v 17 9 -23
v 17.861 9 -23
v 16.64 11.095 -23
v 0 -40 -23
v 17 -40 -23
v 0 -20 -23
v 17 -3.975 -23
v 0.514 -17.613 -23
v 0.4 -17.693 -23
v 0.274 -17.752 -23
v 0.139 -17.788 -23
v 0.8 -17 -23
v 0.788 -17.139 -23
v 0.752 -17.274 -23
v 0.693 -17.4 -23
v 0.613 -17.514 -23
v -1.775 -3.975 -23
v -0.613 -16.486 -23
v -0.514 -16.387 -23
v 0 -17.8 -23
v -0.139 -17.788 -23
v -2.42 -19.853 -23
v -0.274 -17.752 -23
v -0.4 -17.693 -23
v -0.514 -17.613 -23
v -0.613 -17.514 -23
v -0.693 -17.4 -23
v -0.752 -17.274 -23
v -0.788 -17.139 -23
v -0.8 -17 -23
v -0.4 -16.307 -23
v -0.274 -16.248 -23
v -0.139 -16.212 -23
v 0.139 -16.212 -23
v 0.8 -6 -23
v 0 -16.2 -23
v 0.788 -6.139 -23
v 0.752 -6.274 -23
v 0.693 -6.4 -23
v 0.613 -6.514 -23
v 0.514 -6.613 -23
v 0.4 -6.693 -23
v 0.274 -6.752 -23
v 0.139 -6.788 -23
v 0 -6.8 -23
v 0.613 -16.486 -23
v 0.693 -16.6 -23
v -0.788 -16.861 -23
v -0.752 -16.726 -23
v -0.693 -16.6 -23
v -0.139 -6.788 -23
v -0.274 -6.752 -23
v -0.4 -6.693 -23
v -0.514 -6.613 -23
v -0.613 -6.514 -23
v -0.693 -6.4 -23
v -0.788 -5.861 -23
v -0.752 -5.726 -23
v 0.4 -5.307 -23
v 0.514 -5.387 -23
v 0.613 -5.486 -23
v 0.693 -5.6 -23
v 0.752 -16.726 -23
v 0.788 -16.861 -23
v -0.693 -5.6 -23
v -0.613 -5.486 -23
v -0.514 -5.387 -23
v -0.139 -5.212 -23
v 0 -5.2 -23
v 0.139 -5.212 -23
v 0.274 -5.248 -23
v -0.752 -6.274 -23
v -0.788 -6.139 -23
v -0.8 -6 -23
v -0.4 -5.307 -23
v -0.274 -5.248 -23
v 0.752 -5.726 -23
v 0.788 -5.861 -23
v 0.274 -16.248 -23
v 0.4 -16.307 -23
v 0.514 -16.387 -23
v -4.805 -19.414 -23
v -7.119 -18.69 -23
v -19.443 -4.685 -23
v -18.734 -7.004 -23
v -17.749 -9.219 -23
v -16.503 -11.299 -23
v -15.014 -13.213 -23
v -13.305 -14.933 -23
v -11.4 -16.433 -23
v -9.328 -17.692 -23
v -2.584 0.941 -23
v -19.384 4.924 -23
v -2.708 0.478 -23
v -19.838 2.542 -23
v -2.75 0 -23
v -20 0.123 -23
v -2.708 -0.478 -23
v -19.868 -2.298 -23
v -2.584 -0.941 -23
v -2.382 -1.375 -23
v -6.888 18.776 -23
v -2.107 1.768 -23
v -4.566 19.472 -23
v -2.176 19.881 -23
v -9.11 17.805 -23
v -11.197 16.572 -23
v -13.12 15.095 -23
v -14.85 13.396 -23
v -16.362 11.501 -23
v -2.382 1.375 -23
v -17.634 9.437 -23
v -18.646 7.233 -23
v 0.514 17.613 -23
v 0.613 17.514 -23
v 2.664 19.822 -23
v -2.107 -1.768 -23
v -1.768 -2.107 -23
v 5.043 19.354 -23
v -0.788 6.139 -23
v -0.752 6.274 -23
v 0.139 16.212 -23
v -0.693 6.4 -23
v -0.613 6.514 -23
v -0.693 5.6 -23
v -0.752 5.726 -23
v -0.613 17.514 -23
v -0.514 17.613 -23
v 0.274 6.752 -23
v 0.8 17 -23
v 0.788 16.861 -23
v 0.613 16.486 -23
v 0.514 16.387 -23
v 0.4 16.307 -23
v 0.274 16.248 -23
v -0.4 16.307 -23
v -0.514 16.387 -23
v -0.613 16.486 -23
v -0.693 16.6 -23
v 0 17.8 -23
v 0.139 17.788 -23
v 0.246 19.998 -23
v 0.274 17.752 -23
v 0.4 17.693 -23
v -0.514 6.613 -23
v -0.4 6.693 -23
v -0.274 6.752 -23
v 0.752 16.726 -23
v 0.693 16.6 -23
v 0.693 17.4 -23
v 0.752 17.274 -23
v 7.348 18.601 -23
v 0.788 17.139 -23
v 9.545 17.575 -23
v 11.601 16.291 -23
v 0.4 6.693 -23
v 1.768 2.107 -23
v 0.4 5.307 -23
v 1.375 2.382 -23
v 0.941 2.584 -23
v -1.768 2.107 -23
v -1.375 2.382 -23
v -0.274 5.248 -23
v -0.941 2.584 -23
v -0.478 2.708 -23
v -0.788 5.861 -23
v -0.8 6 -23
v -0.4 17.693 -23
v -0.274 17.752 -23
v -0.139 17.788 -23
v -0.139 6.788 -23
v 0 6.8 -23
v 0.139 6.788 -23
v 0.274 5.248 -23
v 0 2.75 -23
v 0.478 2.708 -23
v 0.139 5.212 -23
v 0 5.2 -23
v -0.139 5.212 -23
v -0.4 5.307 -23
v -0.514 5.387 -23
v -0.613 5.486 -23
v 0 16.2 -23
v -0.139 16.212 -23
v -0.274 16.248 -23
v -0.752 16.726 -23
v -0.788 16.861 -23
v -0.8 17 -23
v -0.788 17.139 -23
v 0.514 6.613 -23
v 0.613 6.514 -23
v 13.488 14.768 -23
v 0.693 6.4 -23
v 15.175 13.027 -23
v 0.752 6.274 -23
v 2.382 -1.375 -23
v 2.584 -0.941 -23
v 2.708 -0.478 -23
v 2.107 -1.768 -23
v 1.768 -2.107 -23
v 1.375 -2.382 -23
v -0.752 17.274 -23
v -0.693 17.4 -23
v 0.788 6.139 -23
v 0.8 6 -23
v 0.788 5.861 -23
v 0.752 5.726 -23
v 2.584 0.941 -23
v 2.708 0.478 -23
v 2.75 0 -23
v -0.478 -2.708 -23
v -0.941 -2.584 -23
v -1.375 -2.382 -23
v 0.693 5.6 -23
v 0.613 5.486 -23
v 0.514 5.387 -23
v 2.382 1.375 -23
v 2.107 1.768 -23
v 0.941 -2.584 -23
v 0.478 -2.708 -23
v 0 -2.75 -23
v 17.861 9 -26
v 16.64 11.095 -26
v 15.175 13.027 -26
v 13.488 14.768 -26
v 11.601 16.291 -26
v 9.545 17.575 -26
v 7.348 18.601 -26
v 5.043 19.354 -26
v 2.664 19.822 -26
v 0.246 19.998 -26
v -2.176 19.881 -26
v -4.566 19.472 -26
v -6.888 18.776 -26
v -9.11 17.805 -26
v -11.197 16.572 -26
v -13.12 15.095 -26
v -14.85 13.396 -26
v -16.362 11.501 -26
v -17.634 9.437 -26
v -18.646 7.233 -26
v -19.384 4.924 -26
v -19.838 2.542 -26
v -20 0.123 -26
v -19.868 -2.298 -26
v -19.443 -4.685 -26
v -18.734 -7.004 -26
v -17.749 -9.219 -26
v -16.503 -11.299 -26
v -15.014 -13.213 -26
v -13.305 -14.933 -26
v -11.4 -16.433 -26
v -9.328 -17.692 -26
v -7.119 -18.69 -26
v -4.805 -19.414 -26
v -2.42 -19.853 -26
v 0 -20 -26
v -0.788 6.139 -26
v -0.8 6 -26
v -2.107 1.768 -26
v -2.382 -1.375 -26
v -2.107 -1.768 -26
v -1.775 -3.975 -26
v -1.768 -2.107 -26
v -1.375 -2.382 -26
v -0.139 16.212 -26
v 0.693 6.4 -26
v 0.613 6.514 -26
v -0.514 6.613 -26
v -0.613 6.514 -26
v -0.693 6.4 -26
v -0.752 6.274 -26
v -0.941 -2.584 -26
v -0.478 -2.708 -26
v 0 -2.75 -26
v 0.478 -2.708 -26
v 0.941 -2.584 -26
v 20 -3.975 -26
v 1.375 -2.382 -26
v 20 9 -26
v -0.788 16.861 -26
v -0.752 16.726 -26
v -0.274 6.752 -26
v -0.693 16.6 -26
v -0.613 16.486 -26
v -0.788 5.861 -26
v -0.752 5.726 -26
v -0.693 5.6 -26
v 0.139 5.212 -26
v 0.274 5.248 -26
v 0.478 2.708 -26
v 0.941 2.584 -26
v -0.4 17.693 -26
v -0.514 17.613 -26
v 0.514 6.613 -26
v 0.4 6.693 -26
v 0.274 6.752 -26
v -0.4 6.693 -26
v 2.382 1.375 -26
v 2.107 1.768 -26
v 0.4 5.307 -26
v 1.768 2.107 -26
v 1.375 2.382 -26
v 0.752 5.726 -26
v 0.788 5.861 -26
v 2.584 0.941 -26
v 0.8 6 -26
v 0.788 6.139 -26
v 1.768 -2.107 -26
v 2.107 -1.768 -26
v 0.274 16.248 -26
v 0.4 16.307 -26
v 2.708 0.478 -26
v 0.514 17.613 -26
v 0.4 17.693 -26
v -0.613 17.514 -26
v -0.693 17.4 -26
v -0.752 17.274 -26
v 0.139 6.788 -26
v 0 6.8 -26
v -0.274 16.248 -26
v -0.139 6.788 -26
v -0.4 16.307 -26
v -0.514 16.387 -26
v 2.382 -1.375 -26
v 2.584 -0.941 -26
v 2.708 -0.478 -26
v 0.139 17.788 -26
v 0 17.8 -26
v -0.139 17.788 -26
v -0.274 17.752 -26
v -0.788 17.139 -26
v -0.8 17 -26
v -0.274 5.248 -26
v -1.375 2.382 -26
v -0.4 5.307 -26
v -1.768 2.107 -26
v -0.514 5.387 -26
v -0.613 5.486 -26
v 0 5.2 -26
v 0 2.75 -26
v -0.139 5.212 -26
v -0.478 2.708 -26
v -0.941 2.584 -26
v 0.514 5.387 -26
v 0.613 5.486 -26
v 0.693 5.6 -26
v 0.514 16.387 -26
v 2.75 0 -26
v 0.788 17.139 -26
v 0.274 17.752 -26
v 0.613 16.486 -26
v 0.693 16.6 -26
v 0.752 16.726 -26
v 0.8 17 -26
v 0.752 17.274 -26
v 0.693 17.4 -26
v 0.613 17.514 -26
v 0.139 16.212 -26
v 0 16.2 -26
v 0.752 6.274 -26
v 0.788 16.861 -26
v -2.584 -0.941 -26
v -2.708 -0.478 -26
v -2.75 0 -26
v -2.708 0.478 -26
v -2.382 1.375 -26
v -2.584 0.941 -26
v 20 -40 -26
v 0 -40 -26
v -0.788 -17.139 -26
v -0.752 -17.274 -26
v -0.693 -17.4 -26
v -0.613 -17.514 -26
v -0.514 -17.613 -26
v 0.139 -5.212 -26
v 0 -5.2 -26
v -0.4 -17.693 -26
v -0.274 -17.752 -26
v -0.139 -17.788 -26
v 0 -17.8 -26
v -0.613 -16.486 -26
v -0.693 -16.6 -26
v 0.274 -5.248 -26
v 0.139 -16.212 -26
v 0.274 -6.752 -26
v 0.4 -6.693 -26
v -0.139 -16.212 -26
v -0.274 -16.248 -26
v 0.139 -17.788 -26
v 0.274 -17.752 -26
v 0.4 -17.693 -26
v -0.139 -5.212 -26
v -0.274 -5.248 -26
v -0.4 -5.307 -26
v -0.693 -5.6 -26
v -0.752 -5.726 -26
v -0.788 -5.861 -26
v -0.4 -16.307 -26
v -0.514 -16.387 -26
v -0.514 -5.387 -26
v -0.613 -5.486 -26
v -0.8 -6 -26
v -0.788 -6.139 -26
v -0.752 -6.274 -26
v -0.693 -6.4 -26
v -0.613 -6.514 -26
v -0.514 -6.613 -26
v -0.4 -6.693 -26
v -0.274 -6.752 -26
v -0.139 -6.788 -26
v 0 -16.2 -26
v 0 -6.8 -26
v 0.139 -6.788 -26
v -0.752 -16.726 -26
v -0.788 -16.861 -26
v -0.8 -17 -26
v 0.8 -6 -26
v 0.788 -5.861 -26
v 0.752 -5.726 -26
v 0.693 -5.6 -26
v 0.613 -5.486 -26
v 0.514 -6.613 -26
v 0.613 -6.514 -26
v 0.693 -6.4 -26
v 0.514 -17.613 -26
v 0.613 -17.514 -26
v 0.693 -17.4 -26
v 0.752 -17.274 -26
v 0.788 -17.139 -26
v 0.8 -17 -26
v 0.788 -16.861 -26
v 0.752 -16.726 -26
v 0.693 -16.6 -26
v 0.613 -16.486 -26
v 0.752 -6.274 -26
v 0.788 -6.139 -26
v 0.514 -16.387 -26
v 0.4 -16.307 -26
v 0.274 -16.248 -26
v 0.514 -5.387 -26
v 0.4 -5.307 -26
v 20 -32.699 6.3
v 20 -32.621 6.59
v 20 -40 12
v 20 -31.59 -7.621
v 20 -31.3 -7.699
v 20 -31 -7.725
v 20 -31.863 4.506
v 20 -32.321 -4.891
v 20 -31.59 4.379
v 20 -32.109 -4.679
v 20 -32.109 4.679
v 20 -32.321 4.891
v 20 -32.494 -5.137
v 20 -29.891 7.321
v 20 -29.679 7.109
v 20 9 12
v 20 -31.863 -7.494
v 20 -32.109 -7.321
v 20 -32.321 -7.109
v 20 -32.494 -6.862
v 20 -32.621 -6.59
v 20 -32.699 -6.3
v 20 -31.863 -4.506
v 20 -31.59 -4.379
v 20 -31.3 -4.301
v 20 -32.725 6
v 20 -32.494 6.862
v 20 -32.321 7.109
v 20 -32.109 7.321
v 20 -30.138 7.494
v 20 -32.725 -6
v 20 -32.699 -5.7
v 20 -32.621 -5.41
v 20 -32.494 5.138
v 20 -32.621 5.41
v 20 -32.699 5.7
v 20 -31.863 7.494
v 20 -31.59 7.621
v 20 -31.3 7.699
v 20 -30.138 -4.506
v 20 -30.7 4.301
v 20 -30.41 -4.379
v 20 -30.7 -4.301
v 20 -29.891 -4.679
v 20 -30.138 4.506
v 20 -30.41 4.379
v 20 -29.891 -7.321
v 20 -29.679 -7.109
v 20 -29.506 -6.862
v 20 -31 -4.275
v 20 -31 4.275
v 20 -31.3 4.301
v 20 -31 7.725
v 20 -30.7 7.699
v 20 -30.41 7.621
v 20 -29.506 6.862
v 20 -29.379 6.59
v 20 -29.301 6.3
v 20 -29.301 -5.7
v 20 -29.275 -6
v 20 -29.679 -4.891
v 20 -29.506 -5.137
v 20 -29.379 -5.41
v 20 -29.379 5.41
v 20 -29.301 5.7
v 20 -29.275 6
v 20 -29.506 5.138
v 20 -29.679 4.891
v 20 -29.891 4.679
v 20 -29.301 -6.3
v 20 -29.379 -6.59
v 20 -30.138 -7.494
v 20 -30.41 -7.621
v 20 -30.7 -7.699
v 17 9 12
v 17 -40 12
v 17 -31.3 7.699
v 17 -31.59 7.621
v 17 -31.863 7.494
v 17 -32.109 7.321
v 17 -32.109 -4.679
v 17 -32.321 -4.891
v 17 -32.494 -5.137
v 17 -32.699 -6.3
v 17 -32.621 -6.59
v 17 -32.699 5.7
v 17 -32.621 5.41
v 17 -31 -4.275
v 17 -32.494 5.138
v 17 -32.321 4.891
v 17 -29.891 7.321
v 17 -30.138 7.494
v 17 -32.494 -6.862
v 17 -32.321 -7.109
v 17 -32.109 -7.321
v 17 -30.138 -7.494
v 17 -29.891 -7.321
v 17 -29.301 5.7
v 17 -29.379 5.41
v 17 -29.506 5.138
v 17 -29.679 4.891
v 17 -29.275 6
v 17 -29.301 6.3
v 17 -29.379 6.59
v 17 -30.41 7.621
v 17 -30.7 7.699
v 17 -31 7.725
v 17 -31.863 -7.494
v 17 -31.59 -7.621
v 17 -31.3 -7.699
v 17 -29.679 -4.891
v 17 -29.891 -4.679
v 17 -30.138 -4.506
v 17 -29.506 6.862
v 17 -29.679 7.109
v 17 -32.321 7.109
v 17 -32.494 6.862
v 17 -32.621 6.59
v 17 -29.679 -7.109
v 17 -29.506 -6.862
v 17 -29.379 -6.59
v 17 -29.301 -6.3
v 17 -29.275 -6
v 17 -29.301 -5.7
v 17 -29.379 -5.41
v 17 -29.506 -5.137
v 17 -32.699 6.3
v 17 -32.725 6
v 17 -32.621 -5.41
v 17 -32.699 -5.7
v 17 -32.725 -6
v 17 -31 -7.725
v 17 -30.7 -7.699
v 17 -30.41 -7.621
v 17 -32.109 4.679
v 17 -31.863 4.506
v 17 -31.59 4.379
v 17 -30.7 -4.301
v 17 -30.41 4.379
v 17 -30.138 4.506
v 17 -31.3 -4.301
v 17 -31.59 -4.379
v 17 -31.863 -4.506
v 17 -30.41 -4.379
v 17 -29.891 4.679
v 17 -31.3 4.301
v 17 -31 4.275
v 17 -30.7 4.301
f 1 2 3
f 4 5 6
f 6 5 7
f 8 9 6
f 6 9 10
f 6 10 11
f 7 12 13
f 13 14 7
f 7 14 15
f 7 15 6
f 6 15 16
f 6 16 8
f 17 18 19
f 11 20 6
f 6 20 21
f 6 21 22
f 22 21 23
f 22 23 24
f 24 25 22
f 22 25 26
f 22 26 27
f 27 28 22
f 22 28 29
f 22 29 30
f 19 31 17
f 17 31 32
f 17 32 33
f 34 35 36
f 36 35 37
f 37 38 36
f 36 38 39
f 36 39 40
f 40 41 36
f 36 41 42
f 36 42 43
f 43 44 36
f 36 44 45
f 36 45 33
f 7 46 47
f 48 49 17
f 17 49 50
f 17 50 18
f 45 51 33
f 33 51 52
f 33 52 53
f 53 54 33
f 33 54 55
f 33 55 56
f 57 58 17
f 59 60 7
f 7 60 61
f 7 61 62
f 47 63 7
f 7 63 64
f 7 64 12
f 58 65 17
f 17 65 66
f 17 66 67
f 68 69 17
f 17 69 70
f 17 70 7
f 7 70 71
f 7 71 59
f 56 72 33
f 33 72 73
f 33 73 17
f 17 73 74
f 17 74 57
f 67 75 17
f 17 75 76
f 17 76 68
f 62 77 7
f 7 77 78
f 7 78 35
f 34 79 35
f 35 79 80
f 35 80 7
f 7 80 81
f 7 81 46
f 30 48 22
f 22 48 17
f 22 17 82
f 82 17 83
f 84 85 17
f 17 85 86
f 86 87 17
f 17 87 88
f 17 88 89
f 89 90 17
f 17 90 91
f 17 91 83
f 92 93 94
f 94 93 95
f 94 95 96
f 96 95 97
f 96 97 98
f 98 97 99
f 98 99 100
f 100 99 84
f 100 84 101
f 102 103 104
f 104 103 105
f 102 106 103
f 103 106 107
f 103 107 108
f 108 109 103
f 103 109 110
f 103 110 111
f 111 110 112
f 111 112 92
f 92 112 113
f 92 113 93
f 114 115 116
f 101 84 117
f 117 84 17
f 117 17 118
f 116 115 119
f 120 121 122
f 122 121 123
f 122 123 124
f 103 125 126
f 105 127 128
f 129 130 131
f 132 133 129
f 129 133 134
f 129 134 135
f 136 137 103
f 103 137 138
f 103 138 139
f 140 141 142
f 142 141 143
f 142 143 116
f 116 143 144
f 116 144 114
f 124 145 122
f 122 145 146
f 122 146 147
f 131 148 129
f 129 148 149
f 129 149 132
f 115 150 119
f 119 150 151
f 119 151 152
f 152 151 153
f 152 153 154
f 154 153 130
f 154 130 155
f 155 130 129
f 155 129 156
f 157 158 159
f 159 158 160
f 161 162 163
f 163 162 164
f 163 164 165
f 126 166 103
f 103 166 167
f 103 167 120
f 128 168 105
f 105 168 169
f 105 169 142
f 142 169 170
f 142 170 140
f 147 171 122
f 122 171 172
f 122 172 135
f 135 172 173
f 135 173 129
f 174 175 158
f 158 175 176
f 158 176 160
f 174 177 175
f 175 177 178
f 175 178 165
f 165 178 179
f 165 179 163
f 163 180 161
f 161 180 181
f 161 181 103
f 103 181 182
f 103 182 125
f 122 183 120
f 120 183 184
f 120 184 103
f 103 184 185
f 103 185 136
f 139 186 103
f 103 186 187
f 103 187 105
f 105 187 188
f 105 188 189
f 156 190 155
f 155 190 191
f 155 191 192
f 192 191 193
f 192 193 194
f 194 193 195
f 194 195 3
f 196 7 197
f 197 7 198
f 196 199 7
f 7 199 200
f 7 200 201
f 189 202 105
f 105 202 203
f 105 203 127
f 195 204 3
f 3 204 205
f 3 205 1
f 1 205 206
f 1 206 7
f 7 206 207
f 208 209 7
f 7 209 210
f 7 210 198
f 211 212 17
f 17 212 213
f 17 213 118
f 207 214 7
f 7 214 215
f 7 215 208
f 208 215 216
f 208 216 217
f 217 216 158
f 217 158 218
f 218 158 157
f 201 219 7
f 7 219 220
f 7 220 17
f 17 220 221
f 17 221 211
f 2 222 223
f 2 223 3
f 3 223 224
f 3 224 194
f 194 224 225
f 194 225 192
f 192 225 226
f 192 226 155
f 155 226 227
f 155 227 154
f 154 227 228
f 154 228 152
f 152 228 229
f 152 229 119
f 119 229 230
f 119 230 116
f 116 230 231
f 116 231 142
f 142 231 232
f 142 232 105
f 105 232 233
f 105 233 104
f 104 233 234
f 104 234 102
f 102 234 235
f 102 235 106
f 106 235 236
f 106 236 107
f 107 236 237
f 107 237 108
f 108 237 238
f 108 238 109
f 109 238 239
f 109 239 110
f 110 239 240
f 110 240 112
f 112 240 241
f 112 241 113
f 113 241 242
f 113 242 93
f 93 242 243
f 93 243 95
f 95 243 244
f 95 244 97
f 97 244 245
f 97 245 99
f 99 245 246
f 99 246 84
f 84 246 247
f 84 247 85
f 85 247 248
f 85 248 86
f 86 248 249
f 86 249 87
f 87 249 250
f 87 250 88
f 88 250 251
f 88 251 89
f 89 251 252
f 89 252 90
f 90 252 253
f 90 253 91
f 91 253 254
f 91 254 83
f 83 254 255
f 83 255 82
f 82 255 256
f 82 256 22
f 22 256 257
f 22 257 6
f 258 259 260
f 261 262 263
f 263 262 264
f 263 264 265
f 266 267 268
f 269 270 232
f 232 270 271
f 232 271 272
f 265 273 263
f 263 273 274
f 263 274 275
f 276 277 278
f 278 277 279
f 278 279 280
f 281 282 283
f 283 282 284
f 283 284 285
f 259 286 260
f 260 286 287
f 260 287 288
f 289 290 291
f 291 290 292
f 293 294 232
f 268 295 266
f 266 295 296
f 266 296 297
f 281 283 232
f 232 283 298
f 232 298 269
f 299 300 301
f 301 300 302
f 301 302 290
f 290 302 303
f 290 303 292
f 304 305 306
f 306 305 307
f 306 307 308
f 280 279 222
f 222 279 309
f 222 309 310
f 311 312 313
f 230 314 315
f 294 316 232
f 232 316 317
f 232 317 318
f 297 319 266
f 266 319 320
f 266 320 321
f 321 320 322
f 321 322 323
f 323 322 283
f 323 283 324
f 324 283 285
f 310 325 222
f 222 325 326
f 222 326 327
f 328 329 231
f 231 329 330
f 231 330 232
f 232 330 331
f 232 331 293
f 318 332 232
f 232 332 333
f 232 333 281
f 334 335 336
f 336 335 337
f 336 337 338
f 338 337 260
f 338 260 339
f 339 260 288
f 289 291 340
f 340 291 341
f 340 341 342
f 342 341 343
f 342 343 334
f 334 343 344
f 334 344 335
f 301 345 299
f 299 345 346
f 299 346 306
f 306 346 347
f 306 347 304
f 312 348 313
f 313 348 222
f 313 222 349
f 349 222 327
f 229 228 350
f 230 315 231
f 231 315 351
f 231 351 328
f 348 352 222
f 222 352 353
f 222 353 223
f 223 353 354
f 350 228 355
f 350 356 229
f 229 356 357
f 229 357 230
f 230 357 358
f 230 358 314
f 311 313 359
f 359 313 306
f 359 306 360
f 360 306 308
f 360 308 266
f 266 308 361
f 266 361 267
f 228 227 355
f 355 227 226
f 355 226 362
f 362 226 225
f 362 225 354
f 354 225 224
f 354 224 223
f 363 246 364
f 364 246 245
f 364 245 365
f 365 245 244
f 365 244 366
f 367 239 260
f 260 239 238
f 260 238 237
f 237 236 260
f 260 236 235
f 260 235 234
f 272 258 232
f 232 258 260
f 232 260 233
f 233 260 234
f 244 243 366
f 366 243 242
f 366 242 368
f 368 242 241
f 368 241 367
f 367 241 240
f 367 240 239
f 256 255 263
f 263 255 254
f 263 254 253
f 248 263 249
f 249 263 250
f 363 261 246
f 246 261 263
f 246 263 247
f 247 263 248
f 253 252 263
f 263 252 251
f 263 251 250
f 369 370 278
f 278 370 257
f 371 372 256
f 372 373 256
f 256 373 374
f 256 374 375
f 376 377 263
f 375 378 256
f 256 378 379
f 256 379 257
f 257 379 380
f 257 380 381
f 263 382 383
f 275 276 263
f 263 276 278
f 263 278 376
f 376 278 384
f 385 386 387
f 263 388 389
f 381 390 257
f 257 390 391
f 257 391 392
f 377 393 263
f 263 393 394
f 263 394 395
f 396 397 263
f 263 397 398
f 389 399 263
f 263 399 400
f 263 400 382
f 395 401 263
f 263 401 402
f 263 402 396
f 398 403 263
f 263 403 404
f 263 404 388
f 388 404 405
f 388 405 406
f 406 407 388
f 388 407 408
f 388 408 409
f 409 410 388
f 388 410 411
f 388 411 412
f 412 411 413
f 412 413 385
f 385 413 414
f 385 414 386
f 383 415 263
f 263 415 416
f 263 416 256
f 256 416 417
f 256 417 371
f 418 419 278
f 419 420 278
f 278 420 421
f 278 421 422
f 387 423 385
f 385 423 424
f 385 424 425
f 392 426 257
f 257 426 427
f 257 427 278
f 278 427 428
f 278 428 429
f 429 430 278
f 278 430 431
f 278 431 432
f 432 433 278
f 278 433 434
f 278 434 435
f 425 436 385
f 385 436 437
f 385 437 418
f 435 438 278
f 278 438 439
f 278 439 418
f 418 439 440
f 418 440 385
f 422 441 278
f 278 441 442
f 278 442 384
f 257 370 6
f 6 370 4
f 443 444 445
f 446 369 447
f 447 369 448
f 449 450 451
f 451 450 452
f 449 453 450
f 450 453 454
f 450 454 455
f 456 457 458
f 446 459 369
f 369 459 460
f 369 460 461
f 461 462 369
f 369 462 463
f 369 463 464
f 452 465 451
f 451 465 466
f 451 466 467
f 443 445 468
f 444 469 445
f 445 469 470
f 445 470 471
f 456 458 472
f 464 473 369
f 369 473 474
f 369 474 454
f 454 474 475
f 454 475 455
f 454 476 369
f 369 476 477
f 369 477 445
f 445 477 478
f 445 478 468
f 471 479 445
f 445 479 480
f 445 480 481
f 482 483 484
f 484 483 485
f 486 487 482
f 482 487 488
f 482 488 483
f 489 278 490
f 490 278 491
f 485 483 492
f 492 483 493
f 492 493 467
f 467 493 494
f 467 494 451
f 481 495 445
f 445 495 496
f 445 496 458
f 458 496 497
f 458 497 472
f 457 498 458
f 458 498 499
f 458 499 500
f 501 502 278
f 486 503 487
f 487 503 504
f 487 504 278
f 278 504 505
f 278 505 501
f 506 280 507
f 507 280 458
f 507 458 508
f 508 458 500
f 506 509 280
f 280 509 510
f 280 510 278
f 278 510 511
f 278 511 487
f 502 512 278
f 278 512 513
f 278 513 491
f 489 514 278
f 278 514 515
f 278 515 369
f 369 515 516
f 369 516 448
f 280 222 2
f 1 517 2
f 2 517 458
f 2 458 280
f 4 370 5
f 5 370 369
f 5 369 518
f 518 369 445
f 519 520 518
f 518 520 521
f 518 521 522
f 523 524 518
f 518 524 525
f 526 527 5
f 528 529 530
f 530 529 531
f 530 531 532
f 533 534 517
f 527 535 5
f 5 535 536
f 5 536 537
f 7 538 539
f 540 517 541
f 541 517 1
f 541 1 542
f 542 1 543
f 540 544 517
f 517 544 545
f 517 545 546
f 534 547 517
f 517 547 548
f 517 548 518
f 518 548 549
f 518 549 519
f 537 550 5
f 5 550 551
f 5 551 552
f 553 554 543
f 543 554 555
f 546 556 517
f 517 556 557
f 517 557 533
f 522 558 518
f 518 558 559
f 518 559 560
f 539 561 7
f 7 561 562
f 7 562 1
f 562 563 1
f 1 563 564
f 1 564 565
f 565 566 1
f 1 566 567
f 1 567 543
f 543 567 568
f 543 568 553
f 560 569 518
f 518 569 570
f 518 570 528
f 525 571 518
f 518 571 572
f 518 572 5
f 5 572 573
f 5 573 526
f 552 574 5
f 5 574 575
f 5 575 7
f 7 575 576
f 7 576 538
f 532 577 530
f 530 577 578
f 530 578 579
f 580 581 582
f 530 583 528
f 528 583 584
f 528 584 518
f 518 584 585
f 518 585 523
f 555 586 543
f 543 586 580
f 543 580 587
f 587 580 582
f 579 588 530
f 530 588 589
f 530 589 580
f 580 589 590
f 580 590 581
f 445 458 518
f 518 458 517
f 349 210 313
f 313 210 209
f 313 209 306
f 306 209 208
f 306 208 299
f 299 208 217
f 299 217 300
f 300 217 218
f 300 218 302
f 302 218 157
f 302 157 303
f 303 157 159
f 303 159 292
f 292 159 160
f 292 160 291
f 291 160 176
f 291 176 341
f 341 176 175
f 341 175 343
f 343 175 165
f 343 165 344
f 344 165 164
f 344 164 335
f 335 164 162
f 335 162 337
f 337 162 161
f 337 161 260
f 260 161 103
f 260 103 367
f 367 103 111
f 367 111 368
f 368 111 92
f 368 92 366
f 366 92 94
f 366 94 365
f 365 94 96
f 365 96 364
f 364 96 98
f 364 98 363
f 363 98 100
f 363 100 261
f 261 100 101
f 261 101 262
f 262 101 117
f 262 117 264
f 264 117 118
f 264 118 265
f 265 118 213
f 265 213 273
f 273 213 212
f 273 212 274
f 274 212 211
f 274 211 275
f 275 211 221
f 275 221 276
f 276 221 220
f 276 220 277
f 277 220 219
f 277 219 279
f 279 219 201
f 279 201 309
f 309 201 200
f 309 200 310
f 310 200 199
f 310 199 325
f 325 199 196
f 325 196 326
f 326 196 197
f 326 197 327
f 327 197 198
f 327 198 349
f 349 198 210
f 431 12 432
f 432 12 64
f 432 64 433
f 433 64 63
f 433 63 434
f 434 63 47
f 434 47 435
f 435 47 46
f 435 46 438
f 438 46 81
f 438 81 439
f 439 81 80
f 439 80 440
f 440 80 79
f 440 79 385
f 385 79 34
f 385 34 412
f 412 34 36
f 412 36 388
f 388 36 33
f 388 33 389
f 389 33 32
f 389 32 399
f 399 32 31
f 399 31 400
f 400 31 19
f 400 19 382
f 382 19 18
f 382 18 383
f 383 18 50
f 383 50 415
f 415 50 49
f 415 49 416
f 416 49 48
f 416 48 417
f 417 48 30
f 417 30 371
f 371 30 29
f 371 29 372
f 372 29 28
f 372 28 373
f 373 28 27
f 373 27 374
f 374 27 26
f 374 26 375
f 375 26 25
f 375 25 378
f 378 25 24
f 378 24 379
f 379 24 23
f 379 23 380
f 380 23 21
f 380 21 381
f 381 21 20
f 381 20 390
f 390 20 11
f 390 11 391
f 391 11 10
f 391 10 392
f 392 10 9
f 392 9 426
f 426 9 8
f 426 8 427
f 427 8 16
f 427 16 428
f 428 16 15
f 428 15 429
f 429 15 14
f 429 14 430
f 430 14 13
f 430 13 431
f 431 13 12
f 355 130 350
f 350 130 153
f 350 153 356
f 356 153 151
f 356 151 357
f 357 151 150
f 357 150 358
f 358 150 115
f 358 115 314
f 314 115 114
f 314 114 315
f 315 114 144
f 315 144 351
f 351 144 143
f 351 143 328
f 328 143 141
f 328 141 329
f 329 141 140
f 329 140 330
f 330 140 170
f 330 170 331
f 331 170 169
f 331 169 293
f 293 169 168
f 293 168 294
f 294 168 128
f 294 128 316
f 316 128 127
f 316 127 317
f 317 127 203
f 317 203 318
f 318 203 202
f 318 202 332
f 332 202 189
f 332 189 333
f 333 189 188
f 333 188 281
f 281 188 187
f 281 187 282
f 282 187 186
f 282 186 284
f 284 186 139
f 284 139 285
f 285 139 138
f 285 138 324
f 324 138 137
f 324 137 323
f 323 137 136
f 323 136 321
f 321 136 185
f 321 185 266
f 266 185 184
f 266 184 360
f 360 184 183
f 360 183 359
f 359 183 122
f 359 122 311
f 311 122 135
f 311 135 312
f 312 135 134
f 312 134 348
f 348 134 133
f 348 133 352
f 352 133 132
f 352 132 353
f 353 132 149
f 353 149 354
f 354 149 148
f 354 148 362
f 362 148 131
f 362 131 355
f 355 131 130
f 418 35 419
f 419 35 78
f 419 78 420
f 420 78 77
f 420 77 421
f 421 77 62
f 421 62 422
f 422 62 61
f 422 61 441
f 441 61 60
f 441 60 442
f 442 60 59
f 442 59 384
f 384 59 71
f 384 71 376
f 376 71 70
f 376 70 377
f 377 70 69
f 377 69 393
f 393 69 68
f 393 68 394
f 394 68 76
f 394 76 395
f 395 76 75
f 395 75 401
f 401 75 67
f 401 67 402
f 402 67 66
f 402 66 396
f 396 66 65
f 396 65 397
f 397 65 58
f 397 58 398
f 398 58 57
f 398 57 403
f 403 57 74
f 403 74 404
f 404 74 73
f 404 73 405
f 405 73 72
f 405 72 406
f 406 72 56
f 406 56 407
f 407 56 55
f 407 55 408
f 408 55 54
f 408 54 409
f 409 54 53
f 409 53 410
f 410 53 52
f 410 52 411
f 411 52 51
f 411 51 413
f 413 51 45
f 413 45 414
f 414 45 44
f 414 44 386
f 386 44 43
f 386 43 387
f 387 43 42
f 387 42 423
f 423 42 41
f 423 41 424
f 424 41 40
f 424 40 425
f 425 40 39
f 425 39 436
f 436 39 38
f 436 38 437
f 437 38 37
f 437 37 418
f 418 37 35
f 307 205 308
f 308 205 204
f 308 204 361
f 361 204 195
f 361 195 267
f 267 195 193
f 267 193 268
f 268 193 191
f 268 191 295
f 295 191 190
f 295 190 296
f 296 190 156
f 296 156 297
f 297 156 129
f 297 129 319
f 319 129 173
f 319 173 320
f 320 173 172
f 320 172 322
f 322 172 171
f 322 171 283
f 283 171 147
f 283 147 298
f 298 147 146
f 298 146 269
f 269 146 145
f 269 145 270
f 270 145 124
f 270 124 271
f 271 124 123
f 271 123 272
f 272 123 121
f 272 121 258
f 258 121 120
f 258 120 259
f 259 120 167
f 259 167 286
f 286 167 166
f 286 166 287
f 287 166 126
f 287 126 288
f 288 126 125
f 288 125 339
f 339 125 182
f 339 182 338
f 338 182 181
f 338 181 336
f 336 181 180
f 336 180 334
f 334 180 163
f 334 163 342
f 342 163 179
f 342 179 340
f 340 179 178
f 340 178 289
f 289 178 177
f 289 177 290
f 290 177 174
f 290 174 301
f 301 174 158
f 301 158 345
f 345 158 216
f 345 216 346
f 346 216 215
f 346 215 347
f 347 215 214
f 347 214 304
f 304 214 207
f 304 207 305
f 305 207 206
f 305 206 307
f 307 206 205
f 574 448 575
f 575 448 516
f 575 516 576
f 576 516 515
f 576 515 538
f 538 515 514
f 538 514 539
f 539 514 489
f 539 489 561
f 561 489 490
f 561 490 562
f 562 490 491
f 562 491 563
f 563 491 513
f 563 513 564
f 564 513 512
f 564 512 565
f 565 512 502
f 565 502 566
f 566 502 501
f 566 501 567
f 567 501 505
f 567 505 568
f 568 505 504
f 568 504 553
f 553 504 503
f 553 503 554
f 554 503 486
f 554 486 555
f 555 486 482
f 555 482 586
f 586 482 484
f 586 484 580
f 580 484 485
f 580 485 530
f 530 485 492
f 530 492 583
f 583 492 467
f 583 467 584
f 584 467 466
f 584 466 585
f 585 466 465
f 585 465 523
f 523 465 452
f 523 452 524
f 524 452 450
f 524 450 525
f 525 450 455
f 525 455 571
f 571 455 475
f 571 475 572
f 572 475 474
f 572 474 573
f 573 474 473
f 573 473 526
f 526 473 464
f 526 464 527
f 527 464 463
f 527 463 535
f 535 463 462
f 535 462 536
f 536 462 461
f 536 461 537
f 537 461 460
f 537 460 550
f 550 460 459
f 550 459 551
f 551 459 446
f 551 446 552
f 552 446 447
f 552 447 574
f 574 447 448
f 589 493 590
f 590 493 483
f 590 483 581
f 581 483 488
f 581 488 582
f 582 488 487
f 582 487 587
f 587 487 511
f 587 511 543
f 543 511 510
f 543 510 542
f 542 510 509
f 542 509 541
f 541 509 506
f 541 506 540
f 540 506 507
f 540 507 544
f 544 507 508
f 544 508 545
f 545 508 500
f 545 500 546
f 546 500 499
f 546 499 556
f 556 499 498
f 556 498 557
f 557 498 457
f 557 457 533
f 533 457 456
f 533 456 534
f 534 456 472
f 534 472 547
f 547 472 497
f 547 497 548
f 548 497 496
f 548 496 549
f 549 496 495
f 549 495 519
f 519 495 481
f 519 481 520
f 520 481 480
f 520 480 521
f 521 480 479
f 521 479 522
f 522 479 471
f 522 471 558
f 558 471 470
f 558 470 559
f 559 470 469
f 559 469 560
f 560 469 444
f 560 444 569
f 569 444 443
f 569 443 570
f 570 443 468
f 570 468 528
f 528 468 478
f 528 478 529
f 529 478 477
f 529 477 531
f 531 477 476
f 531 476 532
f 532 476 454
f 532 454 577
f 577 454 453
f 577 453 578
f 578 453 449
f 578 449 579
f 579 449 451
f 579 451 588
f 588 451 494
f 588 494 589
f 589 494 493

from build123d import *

# Parameters (mm, degrees)
BOSS_EXTRUDE1_START     = -26
SKETCH1_R               = 20
BOSS_EXTRUDE1_DEPTH     = 3
BOSS_EXTRUDE2_START     = -26
SKETCH2_W               = 20
SKETCH2_H               = 49
BOSS_EXTRUDE2_DEPTH     = 3
BOSS_EXTRUDE3_START     = -26
SKETCH3_W               = 3
SKETCH3_H               = 49
BOSS_EXTRUDE3_DEPTH     = 38
CUT_EXTRUDE1_DEPTH      = 52.730068626
CUT_EXTRUDE1_DEPTH_BACK = 52.730068626
SKETCH4_R               = 2.75
SKETCH4_R_2             = 0.8
CUT_EXTRUDE2_DEPTH      = 52.730068626
CUT_EXTRUDE2_DEPTH_BACK = 52.730068626
SKETCH5_R               = 1.725


with BuildPart() as part:
    # Sketch1 → Boss-Extrude1 (new body)
    with BuildSketch(Plane.XY.offset(BOSS_EXTRUDE1_START)):
        Circle(SKETCH1_R)
    extrude(amount=BOSS_EXTRUDE1_DEPTH)

    # Sketch2 → Boss-Extrude2 (add)
    with BuildSketch(Plane.XY.offset(BOSS_EXTRUDE2_START)):
        with Locations((10, -15.5)):
            Rectangle(SKETCH2_W, SKETCH2_H)
    extrude(amount=BOSS_EXTRUDE2_DEPTH)

    # Sketch3 → Boss-Extrude3 (add)
    with BuildSketch(Plane.XY.offset(BOSS_EXTRUDE3_START)):
        with Locations((18.5, -15.5)):
            Rectangle(SKETCH3_W, SKETCH3_H)
    extrude(amount=BOSS_EXTRUDE3_DEPTH)

    # Sketch4 → Cut-Extrude1 (cut, two sides: drawn at the far end of the back side and taken through both)
    with BuildSketch(Plane.XY.offset(-CUT_EXTRUDE1_DEPTH_BACK)):
        Circle(SKETCH4_R)
        with Locations((0, 6)):
            Circle(SKETCH4_R_2)
        with Locations((0, -6)):
            Circle(SKETCH4_R_2)
        with Locations((0, 17)):
            Circle(SKETCH4_R_2)
        with Locations((0, -17)):
            Circle(SKETCH4_R_2)
    extrude(amount=CUT_EXTRUDE1_DEPTH + CUT_EXTRUDE1_DEPTH_BACK, mode=Mode.SUBTRACT)

    # Sketch5 → Cut-Extrude2 (cut, two sides: drawn at the far end of the back side and taken through both)
    with BuildSketch(Plane(origin=(0, 0, 0), x_dir=(0, 0, -1), z_dir=(1, 0, 0)).offset(-CUT_EXTRUDE2_DEPTH_BACK)):
        with Locations((-6, -31)):
            Circle(SKETCH5_R)
        with Locations((6, -31)):
            Circle(SKETCH5_R)
    extrude(amount=CUT_EXTRUDE2_DEPTH + CUT_EXTRUDE2_DEPTH_BACK, mode=Mode.SUBTRACT)


solid = part.part
